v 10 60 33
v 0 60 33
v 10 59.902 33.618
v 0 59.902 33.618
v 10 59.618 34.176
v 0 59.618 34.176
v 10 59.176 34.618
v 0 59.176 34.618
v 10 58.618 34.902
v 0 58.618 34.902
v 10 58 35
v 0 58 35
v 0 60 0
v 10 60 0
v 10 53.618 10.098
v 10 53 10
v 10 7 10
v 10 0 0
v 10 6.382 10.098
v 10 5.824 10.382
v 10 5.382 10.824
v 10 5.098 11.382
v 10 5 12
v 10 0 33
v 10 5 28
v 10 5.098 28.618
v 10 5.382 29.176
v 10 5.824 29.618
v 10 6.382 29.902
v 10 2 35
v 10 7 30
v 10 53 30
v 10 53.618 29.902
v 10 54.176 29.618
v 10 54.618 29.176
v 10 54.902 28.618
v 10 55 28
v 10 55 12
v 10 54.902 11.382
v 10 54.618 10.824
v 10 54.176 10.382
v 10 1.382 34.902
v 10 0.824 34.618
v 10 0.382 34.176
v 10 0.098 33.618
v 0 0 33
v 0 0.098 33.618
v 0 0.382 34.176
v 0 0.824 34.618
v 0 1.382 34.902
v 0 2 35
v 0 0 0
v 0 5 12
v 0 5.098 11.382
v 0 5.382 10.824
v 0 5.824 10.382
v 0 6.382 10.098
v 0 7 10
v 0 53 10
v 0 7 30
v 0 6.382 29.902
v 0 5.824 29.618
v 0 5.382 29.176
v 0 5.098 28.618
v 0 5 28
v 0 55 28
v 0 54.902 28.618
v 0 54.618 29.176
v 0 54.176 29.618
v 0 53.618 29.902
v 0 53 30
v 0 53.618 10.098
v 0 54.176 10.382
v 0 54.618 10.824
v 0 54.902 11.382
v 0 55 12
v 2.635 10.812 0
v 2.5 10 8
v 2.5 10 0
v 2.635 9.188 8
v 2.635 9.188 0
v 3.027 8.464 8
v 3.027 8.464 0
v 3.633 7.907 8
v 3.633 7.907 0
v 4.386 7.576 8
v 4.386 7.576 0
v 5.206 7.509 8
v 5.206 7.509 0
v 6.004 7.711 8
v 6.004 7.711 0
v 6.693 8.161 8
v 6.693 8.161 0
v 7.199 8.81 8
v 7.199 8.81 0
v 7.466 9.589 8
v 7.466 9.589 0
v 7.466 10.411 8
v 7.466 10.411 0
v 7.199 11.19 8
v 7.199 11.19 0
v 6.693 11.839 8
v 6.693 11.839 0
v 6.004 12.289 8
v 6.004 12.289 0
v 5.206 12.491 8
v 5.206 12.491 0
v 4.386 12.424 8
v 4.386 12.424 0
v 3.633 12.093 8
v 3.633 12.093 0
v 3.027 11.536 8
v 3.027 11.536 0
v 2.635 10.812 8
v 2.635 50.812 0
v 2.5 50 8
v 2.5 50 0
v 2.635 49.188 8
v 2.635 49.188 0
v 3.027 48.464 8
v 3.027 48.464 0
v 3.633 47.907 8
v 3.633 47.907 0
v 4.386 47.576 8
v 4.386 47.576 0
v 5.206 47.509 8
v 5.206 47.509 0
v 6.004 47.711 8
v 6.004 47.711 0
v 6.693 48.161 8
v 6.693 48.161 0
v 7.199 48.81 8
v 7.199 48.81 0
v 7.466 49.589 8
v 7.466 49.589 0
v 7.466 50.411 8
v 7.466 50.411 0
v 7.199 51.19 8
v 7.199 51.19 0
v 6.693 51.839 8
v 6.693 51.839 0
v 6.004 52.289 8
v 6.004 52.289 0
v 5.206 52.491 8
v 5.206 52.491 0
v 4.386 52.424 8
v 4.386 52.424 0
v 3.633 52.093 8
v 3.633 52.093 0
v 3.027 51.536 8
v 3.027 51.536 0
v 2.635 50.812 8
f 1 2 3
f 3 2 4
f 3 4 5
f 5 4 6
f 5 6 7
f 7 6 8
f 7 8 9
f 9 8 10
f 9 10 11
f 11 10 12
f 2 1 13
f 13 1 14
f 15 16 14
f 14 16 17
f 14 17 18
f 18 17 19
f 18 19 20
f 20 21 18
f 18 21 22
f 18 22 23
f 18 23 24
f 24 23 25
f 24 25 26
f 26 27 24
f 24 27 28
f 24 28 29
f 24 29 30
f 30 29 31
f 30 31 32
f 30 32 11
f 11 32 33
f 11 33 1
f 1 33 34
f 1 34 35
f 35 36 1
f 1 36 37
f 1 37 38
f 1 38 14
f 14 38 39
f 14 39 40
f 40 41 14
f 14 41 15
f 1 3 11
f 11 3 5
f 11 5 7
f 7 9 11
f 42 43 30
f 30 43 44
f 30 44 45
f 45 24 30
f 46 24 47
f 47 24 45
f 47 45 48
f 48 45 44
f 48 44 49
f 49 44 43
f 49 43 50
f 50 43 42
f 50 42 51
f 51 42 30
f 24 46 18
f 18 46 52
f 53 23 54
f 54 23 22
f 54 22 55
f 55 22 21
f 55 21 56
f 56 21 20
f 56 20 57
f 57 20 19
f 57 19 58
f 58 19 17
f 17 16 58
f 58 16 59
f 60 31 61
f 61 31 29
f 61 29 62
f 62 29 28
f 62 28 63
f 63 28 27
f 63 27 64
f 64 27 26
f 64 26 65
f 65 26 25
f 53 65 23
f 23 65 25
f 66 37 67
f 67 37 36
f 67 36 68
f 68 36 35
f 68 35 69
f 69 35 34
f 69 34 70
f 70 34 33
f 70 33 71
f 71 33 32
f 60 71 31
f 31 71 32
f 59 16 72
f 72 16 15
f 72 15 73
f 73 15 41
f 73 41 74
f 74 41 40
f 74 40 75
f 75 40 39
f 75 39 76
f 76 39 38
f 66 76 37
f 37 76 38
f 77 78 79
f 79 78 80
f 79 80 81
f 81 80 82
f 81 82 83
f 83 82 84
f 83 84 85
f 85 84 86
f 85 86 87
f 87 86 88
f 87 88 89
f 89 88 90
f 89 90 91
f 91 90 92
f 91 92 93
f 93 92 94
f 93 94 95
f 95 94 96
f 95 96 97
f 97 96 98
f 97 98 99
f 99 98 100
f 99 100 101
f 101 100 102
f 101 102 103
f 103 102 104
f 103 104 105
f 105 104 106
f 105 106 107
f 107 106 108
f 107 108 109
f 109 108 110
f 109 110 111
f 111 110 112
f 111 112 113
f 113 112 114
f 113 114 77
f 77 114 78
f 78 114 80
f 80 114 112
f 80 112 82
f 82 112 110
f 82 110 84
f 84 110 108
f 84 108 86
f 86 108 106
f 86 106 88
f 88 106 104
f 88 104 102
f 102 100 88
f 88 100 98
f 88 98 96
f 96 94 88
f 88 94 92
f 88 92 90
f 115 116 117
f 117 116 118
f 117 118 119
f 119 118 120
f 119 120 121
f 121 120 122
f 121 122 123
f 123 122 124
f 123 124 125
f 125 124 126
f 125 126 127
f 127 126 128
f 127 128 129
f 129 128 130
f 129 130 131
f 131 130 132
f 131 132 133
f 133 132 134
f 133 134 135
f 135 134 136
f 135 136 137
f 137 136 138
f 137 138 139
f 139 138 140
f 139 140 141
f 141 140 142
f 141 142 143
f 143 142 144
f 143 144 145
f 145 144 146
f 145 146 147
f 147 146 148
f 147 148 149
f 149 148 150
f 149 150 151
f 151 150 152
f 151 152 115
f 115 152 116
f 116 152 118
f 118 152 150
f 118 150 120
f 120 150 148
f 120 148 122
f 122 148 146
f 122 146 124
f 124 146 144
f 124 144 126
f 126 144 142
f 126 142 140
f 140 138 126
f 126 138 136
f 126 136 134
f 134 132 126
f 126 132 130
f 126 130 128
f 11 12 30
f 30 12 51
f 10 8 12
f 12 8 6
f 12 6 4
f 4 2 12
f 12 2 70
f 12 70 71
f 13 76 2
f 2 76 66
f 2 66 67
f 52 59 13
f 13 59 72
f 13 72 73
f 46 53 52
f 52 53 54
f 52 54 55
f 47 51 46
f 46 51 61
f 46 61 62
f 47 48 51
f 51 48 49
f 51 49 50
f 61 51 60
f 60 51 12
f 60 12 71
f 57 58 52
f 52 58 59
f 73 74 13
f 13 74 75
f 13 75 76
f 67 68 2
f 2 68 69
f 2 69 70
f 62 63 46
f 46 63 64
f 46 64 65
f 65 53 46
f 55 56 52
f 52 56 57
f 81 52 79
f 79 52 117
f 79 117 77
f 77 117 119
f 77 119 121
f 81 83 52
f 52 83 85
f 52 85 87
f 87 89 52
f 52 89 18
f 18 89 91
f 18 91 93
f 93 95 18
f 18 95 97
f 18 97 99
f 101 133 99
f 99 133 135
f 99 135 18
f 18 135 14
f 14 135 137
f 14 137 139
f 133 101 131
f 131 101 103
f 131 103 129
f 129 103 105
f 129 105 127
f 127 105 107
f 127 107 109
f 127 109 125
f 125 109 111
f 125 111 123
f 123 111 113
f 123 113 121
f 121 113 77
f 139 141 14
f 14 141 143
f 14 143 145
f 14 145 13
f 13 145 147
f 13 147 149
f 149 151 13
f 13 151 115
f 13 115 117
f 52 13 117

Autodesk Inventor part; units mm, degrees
ref_plane "YZ Plane" through (0, 0, 0) normal (1, 0, 0) x (0, 1, 0)
ref_plane "XZ Plane" through (0, 0, 0) normal (0, 1, 0) x (-1, 0, 0)
ref_plane "XY Plane" through (0, 0, 0) normal (0, 0, 1) x (1, 0, 0)
sketch "スケッチ1" plane through (0, 0, 0) normal (0, 0, 1) x (1, 0, 0)
  line L0 (0, 0) -> (10, 0)
  line L1 (10, 0) -> (10, 60)
  line L2 (10, 60) -> (0, 60)
  line L3 (0, 60) -> (0, 0)
  dimension "d0" = 10
  dimension "d1" = 60
extrude "押し出し1" add sketch "スケッチ1" along normal blind 5
sketch "スケッチ3" plane through (0, 0, 5) normal (0, 0, 1) x (1, 0, 0)
  line L0 (10, 0) -> (10, 60) projected
  line L1 (10, 60) -> (0, 60) projected
  line L2 (0, 60) -> (0, 0) projected
  line L3 (0, 0) -> (10, 0) projected
  line L4 (10, 60) -> (0, 60)
  line L5 (0, 60) -> (0, 0)
  line L6 (0, 0) -> (10, 0)
  line L7 (10, 0) -> (10, 60)
extrude "押し出し2" add sketch "スケッチ3" along normal blind 30
sketch "スケッチ4" plane through (10, 0, 0) normal (1, 0, 0) x (0, 0, -1)
  line L0 (0, 60) -> (-35, 60) projected
  line L1 (0, 0) -> (0, 60) projected
  line L2 (0, 0) -> (-35, 0) projected
  line L3 (-35, 60) -> (-5, 60)
  line L4 (-5, 60) -> (-5, 0)
  line L5 (-5, 0) -> (-35, 0)
  line L6 (-35, 0) -> (-35, 60)
  line L7 (-30, 55) -> (-10, 55)
  line L8 (-10, 55) -> (-10, 5)
  line L9 (-10, 5) -> (-30, 5)
  line L10 (-30, 5) -> (-30, 55)
  dimension "d37" = 5
  dimension "d38" = 5
  dimension "d39" = 20
extrude "押し出し3" cut sketch "スケッチ4" against normal blind 40 contours L7 L8 L9 L10
sketch "スケッチ5" plane through (0, 0, 0) normal (0, 0, -1) x (-1, 0, 0)
  line L0 (0, 60) -> (0, 0) projected
  line L1 (0, 0) -> (-10, 0) projected
  point P0 (-5, 50)
  point P1 (-5, 10)
  dimension "d23" = 40
  dimension "d24" = 5
  dimension "d25" = 5
  dimension "d26" = 10
hole "穴2" at (5, 50, 0) at (5, 10, 0) direction (0, 0, 1) diameter 5 depth 8
fillet "フィレット1" radius 2 6 edges at (5, 55, 10) (5, 55, 30) (5, 5, 30) (5, 5, 10) (5, 0, 35) (5, 60, 35)
equation "\"d25\" = d24"
properties part number "BP_BOX-handle" material "ABS プラスチック"
